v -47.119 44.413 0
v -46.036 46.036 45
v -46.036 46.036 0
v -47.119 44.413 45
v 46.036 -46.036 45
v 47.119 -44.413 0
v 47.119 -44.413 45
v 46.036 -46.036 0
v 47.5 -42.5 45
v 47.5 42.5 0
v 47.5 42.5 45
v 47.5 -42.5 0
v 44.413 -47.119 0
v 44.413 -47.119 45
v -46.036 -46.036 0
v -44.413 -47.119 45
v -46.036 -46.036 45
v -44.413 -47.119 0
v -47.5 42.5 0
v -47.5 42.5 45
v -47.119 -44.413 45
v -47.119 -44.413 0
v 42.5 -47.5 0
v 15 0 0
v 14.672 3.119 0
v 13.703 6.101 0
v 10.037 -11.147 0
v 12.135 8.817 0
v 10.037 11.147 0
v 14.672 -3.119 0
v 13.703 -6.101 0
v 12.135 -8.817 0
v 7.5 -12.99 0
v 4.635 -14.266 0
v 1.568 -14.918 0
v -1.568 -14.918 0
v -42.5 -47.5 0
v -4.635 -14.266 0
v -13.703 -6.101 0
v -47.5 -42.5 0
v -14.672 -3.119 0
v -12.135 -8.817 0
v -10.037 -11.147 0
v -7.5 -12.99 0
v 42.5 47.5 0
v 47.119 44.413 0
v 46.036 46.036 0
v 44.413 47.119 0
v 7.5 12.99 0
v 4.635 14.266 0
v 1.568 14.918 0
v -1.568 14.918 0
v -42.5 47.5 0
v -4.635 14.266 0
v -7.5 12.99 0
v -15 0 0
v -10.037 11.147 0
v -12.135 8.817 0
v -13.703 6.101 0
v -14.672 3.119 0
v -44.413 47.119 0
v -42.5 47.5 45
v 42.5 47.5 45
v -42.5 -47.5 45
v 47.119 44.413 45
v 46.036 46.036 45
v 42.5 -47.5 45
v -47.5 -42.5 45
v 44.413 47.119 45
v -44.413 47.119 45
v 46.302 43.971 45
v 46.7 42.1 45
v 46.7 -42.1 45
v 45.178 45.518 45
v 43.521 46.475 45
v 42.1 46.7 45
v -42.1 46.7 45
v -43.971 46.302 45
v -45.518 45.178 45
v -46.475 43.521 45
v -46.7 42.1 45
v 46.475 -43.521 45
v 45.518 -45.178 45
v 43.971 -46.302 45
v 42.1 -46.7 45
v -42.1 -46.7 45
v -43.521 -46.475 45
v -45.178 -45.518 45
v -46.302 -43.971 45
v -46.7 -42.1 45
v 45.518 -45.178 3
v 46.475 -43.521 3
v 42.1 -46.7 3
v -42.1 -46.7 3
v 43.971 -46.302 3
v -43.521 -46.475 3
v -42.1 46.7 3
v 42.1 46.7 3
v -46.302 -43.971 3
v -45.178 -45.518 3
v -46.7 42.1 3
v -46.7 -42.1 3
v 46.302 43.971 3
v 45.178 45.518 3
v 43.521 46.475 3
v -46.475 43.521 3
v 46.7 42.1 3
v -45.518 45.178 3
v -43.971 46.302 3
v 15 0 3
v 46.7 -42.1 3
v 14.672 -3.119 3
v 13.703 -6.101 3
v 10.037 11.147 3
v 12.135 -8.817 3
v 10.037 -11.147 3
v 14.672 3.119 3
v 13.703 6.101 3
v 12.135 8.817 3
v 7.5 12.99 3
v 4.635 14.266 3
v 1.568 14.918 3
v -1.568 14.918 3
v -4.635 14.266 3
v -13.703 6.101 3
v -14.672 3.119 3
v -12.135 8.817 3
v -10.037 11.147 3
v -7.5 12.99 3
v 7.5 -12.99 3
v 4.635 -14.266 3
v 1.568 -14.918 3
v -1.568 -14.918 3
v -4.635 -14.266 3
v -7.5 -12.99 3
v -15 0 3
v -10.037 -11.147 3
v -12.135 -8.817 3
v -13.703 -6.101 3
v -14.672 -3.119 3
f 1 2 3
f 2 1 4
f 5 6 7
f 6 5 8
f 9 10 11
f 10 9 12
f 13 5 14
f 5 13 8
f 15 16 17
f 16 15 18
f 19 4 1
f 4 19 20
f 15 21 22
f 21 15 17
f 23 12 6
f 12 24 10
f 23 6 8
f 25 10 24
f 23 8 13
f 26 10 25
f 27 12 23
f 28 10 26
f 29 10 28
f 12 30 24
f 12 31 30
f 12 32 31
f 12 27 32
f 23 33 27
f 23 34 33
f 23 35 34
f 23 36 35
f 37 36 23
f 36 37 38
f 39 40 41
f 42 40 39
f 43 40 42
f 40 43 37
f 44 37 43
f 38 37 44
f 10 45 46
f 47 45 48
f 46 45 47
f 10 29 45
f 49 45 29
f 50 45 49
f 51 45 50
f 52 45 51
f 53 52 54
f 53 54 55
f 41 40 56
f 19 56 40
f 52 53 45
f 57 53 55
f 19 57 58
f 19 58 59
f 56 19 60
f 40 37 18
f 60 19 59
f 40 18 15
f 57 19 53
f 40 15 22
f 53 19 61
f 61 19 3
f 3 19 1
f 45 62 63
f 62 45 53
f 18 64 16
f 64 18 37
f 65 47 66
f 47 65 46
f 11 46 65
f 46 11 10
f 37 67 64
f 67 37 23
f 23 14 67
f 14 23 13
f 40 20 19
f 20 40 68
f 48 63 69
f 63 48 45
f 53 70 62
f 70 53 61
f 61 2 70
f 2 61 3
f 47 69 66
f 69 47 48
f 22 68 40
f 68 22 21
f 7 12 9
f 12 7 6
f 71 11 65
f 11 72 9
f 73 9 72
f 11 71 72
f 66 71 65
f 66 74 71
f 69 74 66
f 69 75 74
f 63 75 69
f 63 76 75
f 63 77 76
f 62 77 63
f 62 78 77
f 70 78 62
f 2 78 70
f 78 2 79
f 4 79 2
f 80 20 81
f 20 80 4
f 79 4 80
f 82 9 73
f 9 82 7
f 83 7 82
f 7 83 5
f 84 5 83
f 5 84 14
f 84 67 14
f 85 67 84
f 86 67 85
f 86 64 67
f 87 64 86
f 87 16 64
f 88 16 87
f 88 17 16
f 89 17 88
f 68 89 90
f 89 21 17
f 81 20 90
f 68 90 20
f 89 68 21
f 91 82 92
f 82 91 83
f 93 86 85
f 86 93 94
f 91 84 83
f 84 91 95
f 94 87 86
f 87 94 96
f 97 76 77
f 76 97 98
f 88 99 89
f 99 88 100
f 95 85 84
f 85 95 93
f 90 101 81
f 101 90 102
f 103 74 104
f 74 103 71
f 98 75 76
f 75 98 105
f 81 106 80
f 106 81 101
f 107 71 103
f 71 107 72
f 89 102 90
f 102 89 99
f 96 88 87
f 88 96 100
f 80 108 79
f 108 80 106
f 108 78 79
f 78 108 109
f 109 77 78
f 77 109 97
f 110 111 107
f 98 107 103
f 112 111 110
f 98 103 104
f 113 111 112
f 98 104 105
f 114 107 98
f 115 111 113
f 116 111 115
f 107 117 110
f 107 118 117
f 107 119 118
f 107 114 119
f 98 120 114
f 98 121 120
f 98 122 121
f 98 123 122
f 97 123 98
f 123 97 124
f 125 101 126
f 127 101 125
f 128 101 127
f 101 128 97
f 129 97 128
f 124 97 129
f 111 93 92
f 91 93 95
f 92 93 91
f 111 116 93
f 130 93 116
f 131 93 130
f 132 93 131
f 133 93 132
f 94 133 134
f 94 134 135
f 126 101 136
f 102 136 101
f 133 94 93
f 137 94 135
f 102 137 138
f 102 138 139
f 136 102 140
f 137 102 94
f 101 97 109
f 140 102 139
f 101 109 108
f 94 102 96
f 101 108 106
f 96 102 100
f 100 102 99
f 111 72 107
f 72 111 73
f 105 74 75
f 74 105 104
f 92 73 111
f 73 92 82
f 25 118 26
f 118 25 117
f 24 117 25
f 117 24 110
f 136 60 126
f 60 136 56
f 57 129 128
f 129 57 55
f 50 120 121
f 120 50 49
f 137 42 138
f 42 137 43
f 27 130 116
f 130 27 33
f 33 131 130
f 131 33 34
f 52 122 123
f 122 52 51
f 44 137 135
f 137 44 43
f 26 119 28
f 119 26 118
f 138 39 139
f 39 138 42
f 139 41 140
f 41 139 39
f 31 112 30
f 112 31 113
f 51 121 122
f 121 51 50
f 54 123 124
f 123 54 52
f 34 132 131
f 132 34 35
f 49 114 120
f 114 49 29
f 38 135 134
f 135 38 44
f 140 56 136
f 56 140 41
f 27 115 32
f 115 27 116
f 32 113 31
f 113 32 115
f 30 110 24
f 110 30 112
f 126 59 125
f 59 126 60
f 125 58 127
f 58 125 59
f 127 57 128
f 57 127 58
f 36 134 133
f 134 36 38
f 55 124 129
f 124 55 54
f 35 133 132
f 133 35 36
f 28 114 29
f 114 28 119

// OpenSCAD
// Vase parameters
height = 45;
width = 85;
wall_thickness = 0.4;
base_height = 3;
corner_radius = 5;
bottom_diameter = 30;

// Main vase body
difference() {
  // Outer shape
  linear_extrude(height = height) offset(r = corner_radius)
      square([ width, width ], center = true);

  // Inner cutout
  translate([ 0, 0, base_height ]) linear_extrude(height = height)
      offset(r = corner_radius - wall_thickness)
          square([ width - 2 * wall_thickness, width - 2 * wall_thickness ],
                 center = true);

  translate([ 0, 0, -base_height ]) linear_extrude(height = height)
      circle(d = bottom_diameter);
}
